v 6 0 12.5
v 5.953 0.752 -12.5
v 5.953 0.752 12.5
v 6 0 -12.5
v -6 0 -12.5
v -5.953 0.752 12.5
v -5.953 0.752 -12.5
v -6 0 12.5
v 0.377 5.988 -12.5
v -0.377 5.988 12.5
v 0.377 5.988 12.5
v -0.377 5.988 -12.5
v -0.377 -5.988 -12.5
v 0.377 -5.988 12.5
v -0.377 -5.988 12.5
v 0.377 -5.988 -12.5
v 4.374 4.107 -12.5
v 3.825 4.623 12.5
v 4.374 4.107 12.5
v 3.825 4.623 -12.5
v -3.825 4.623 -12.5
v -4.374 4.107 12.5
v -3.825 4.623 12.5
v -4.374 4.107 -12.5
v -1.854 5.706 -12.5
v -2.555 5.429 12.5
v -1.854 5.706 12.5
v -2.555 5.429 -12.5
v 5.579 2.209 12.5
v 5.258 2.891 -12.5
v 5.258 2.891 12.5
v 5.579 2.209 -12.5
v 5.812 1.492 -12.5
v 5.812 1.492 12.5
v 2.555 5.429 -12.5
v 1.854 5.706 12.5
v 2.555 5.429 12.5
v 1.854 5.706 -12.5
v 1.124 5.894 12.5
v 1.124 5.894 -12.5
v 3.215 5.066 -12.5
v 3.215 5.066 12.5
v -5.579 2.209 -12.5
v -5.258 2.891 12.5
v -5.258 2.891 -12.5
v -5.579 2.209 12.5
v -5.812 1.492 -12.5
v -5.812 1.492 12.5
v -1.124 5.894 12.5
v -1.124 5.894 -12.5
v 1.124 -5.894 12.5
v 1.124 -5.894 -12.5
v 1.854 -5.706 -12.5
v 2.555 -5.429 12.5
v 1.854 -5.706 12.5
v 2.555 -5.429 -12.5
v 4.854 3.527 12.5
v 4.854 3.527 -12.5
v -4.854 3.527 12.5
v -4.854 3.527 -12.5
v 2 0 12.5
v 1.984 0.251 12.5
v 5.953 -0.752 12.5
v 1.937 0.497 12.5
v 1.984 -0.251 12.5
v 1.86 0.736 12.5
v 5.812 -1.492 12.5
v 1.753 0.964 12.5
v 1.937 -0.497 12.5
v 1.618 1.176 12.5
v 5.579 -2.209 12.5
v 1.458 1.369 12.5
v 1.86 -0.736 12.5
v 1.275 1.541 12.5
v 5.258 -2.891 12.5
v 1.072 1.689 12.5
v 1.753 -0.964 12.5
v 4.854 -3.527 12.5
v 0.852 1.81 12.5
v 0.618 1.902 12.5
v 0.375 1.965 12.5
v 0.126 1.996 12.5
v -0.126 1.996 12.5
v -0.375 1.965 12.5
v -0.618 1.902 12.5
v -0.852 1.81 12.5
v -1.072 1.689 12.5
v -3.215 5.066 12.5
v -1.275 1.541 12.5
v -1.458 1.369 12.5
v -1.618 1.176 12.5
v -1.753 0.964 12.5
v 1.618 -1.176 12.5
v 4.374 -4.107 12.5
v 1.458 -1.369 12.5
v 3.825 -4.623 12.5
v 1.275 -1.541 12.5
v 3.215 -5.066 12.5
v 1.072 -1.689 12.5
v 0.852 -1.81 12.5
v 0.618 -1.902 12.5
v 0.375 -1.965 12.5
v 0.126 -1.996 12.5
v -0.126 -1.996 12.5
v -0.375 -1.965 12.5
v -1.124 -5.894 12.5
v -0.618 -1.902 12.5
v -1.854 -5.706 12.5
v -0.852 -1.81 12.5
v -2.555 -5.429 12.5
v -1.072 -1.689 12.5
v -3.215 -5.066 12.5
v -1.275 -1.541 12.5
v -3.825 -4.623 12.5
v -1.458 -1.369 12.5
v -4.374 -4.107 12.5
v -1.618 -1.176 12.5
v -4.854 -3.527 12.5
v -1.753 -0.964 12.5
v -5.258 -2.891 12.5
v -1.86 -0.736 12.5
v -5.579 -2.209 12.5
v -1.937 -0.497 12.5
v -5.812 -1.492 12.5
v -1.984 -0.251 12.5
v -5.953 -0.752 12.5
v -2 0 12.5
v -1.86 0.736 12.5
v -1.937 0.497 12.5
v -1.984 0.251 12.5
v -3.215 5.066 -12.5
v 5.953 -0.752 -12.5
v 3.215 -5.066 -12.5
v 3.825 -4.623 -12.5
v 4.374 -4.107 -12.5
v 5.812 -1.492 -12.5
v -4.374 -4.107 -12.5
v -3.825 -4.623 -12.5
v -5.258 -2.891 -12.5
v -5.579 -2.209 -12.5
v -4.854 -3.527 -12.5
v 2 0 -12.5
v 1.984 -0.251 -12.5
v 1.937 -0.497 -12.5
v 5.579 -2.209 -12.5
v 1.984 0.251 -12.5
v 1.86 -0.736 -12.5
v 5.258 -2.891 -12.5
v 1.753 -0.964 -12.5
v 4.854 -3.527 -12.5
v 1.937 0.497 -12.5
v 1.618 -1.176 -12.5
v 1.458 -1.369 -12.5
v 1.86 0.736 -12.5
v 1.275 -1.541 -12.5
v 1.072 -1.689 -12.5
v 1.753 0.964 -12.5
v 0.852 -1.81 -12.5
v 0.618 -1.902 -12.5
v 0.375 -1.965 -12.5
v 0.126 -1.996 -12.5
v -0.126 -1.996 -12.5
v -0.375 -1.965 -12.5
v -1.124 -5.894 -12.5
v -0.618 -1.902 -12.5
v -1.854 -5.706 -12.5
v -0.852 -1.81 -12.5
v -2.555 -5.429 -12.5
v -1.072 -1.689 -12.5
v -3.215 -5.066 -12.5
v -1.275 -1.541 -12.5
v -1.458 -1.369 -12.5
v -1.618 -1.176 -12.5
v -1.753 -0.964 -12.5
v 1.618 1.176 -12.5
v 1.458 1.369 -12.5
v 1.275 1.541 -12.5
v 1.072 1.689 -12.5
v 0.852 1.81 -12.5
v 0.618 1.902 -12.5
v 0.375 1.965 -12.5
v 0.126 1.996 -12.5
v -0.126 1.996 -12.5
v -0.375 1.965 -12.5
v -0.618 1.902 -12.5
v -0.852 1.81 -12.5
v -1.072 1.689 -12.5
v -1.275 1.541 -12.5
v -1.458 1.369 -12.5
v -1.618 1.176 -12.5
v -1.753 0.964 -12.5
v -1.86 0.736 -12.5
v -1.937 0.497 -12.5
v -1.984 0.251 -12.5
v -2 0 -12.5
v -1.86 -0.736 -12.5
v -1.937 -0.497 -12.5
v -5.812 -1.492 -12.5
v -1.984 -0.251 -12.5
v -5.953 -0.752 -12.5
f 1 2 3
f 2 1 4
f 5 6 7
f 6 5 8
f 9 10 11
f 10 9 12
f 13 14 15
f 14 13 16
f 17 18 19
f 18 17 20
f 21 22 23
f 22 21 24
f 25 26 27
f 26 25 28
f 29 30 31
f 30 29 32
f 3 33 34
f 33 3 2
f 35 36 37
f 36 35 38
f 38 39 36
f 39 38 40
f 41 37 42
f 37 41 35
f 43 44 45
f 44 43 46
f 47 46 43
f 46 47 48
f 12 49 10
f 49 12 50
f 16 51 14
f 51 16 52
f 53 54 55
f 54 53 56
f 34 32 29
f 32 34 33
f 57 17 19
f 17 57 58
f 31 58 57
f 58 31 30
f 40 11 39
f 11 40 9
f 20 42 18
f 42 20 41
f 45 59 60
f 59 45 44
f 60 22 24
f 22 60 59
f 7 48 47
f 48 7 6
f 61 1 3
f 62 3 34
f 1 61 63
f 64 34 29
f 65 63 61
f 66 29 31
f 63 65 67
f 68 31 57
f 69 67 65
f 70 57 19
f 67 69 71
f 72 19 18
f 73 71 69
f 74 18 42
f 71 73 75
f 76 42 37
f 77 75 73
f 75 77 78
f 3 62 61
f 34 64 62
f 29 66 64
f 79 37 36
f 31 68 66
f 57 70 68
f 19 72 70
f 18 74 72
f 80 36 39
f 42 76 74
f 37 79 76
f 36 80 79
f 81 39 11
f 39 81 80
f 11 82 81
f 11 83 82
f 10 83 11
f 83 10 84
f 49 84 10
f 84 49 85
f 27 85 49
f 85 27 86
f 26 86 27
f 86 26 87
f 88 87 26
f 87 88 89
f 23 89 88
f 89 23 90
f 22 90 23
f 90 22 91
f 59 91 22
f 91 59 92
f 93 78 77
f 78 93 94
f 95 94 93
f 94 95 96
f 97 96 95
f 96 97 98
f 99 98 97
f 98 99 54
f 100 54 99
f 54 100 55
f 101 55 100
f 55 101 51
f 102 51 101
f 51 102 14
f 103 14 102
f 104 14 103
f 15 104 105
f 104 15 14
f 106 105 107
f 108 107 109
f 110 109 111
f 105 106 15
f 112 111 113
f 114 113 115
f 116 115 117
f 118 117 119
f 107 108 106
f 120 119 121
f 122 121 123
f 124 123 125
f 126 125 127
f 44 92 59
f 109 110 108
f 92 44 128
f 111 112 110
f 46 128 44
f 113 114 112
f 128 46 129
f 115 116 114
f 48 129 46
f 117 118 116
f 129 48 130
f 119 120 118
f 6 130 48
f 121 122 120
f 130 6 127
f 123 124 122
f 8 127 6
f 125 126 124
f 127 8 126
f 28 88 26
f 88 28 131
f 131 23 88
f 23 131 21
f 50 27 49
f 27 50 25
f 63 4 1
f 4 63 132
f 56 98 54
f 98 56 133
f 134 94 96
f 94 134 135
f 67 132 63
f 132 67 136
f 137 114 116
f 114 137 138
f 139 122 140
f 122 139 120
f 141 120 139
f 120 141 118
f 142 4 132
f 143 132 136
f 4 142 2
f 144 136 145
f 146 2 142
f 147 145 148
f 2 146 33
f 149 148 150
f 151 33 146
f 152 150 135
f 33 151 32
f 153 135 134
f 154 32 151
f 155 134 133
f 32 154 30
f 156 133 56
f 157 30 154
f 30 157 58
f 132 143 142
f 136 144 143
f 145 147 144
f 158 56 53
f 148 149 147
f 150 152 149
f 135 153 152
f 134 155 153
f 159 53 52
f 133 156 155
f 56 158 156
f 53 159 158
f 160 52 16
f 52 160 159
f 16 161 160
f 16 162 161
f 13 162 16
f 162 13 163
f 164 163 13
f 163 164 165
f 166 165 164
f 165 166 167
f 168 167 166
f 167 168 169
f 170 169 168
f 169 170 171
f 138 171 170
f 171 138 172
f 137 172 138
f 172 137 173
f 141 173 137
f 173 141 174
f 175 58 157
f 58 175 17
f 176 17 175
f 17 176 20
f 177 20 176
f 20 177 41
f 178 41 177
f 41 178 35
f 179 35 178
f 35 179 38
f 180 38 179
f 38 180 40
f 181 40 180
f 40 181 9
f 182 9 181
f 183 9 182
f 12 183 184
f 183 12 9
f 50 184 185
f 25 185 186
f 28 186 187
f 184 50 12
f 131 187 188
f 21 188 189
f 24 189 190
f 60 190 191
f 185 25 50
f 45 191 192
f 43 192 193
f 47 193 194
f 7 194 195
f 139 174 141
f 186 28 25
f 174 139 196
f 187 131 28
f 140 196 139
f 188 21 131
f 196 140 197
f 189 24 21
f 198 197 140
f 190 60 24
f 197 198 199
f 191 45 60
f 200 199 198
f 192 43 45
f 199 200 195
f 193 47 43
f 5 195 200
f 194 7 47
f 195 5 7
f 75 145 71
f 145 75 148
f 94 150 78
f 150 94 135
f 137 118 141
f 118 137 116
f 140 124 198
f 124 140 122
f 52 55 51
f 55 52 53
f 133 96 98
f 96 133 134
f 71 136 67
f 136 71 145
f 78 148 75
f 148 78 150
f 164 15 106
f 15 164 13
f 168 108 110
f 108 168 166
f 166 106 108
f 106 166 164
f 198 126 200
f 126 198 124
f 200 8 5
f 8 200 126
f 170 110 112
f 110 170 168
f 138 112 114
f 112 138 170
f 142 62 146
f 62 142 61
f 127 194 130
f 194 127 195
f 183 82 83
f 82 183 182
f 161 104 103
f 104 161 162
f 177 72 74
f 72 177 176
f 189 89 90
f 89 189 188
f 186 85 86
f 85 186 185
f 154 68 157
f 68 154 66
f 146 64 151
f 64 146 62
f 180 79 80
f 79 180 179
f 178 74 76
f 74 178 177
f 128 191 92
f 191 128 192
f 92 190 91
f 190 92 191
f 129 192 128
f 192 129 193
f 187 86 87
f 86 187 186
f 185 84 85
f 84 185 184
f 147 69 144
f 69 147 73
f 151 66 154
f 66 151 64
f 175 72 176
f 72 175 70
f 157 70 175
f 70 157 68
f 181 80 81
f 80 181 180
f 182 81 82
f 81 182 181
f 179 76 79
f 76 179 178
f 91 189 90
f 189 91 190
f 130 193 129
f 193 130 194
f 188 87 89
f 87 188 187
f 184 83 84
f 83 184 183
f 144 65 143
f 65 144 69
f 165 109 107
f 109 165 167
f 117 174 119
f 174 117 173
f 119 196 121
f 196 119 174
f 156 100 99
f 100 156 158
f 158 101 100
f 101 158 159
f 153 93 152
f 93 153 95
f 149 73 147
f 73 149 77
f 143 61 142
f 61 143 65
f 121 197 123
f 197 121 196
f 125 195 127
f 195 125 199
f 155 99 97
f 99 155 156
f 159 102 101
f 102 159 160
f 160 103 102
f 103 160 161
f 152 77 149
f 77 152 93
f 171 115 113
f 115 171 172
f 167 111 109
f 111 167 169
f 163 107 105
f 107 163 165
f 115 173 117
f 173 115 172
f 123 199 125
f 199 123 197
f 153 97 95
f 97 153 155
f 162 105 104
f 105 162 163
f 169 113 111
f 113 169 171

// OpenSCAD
$fn = 50;


difference() {
	union() {
		translate(v = [0, 0, -12.5000000000]) {
			cylinder(h = 25, r = 6.0000000000);
		}
	}
	union() {
		translate(v = [0, 0, -100.0000000000]) {
			cylinder(h = 200, r = 2);
		}
	}
}
